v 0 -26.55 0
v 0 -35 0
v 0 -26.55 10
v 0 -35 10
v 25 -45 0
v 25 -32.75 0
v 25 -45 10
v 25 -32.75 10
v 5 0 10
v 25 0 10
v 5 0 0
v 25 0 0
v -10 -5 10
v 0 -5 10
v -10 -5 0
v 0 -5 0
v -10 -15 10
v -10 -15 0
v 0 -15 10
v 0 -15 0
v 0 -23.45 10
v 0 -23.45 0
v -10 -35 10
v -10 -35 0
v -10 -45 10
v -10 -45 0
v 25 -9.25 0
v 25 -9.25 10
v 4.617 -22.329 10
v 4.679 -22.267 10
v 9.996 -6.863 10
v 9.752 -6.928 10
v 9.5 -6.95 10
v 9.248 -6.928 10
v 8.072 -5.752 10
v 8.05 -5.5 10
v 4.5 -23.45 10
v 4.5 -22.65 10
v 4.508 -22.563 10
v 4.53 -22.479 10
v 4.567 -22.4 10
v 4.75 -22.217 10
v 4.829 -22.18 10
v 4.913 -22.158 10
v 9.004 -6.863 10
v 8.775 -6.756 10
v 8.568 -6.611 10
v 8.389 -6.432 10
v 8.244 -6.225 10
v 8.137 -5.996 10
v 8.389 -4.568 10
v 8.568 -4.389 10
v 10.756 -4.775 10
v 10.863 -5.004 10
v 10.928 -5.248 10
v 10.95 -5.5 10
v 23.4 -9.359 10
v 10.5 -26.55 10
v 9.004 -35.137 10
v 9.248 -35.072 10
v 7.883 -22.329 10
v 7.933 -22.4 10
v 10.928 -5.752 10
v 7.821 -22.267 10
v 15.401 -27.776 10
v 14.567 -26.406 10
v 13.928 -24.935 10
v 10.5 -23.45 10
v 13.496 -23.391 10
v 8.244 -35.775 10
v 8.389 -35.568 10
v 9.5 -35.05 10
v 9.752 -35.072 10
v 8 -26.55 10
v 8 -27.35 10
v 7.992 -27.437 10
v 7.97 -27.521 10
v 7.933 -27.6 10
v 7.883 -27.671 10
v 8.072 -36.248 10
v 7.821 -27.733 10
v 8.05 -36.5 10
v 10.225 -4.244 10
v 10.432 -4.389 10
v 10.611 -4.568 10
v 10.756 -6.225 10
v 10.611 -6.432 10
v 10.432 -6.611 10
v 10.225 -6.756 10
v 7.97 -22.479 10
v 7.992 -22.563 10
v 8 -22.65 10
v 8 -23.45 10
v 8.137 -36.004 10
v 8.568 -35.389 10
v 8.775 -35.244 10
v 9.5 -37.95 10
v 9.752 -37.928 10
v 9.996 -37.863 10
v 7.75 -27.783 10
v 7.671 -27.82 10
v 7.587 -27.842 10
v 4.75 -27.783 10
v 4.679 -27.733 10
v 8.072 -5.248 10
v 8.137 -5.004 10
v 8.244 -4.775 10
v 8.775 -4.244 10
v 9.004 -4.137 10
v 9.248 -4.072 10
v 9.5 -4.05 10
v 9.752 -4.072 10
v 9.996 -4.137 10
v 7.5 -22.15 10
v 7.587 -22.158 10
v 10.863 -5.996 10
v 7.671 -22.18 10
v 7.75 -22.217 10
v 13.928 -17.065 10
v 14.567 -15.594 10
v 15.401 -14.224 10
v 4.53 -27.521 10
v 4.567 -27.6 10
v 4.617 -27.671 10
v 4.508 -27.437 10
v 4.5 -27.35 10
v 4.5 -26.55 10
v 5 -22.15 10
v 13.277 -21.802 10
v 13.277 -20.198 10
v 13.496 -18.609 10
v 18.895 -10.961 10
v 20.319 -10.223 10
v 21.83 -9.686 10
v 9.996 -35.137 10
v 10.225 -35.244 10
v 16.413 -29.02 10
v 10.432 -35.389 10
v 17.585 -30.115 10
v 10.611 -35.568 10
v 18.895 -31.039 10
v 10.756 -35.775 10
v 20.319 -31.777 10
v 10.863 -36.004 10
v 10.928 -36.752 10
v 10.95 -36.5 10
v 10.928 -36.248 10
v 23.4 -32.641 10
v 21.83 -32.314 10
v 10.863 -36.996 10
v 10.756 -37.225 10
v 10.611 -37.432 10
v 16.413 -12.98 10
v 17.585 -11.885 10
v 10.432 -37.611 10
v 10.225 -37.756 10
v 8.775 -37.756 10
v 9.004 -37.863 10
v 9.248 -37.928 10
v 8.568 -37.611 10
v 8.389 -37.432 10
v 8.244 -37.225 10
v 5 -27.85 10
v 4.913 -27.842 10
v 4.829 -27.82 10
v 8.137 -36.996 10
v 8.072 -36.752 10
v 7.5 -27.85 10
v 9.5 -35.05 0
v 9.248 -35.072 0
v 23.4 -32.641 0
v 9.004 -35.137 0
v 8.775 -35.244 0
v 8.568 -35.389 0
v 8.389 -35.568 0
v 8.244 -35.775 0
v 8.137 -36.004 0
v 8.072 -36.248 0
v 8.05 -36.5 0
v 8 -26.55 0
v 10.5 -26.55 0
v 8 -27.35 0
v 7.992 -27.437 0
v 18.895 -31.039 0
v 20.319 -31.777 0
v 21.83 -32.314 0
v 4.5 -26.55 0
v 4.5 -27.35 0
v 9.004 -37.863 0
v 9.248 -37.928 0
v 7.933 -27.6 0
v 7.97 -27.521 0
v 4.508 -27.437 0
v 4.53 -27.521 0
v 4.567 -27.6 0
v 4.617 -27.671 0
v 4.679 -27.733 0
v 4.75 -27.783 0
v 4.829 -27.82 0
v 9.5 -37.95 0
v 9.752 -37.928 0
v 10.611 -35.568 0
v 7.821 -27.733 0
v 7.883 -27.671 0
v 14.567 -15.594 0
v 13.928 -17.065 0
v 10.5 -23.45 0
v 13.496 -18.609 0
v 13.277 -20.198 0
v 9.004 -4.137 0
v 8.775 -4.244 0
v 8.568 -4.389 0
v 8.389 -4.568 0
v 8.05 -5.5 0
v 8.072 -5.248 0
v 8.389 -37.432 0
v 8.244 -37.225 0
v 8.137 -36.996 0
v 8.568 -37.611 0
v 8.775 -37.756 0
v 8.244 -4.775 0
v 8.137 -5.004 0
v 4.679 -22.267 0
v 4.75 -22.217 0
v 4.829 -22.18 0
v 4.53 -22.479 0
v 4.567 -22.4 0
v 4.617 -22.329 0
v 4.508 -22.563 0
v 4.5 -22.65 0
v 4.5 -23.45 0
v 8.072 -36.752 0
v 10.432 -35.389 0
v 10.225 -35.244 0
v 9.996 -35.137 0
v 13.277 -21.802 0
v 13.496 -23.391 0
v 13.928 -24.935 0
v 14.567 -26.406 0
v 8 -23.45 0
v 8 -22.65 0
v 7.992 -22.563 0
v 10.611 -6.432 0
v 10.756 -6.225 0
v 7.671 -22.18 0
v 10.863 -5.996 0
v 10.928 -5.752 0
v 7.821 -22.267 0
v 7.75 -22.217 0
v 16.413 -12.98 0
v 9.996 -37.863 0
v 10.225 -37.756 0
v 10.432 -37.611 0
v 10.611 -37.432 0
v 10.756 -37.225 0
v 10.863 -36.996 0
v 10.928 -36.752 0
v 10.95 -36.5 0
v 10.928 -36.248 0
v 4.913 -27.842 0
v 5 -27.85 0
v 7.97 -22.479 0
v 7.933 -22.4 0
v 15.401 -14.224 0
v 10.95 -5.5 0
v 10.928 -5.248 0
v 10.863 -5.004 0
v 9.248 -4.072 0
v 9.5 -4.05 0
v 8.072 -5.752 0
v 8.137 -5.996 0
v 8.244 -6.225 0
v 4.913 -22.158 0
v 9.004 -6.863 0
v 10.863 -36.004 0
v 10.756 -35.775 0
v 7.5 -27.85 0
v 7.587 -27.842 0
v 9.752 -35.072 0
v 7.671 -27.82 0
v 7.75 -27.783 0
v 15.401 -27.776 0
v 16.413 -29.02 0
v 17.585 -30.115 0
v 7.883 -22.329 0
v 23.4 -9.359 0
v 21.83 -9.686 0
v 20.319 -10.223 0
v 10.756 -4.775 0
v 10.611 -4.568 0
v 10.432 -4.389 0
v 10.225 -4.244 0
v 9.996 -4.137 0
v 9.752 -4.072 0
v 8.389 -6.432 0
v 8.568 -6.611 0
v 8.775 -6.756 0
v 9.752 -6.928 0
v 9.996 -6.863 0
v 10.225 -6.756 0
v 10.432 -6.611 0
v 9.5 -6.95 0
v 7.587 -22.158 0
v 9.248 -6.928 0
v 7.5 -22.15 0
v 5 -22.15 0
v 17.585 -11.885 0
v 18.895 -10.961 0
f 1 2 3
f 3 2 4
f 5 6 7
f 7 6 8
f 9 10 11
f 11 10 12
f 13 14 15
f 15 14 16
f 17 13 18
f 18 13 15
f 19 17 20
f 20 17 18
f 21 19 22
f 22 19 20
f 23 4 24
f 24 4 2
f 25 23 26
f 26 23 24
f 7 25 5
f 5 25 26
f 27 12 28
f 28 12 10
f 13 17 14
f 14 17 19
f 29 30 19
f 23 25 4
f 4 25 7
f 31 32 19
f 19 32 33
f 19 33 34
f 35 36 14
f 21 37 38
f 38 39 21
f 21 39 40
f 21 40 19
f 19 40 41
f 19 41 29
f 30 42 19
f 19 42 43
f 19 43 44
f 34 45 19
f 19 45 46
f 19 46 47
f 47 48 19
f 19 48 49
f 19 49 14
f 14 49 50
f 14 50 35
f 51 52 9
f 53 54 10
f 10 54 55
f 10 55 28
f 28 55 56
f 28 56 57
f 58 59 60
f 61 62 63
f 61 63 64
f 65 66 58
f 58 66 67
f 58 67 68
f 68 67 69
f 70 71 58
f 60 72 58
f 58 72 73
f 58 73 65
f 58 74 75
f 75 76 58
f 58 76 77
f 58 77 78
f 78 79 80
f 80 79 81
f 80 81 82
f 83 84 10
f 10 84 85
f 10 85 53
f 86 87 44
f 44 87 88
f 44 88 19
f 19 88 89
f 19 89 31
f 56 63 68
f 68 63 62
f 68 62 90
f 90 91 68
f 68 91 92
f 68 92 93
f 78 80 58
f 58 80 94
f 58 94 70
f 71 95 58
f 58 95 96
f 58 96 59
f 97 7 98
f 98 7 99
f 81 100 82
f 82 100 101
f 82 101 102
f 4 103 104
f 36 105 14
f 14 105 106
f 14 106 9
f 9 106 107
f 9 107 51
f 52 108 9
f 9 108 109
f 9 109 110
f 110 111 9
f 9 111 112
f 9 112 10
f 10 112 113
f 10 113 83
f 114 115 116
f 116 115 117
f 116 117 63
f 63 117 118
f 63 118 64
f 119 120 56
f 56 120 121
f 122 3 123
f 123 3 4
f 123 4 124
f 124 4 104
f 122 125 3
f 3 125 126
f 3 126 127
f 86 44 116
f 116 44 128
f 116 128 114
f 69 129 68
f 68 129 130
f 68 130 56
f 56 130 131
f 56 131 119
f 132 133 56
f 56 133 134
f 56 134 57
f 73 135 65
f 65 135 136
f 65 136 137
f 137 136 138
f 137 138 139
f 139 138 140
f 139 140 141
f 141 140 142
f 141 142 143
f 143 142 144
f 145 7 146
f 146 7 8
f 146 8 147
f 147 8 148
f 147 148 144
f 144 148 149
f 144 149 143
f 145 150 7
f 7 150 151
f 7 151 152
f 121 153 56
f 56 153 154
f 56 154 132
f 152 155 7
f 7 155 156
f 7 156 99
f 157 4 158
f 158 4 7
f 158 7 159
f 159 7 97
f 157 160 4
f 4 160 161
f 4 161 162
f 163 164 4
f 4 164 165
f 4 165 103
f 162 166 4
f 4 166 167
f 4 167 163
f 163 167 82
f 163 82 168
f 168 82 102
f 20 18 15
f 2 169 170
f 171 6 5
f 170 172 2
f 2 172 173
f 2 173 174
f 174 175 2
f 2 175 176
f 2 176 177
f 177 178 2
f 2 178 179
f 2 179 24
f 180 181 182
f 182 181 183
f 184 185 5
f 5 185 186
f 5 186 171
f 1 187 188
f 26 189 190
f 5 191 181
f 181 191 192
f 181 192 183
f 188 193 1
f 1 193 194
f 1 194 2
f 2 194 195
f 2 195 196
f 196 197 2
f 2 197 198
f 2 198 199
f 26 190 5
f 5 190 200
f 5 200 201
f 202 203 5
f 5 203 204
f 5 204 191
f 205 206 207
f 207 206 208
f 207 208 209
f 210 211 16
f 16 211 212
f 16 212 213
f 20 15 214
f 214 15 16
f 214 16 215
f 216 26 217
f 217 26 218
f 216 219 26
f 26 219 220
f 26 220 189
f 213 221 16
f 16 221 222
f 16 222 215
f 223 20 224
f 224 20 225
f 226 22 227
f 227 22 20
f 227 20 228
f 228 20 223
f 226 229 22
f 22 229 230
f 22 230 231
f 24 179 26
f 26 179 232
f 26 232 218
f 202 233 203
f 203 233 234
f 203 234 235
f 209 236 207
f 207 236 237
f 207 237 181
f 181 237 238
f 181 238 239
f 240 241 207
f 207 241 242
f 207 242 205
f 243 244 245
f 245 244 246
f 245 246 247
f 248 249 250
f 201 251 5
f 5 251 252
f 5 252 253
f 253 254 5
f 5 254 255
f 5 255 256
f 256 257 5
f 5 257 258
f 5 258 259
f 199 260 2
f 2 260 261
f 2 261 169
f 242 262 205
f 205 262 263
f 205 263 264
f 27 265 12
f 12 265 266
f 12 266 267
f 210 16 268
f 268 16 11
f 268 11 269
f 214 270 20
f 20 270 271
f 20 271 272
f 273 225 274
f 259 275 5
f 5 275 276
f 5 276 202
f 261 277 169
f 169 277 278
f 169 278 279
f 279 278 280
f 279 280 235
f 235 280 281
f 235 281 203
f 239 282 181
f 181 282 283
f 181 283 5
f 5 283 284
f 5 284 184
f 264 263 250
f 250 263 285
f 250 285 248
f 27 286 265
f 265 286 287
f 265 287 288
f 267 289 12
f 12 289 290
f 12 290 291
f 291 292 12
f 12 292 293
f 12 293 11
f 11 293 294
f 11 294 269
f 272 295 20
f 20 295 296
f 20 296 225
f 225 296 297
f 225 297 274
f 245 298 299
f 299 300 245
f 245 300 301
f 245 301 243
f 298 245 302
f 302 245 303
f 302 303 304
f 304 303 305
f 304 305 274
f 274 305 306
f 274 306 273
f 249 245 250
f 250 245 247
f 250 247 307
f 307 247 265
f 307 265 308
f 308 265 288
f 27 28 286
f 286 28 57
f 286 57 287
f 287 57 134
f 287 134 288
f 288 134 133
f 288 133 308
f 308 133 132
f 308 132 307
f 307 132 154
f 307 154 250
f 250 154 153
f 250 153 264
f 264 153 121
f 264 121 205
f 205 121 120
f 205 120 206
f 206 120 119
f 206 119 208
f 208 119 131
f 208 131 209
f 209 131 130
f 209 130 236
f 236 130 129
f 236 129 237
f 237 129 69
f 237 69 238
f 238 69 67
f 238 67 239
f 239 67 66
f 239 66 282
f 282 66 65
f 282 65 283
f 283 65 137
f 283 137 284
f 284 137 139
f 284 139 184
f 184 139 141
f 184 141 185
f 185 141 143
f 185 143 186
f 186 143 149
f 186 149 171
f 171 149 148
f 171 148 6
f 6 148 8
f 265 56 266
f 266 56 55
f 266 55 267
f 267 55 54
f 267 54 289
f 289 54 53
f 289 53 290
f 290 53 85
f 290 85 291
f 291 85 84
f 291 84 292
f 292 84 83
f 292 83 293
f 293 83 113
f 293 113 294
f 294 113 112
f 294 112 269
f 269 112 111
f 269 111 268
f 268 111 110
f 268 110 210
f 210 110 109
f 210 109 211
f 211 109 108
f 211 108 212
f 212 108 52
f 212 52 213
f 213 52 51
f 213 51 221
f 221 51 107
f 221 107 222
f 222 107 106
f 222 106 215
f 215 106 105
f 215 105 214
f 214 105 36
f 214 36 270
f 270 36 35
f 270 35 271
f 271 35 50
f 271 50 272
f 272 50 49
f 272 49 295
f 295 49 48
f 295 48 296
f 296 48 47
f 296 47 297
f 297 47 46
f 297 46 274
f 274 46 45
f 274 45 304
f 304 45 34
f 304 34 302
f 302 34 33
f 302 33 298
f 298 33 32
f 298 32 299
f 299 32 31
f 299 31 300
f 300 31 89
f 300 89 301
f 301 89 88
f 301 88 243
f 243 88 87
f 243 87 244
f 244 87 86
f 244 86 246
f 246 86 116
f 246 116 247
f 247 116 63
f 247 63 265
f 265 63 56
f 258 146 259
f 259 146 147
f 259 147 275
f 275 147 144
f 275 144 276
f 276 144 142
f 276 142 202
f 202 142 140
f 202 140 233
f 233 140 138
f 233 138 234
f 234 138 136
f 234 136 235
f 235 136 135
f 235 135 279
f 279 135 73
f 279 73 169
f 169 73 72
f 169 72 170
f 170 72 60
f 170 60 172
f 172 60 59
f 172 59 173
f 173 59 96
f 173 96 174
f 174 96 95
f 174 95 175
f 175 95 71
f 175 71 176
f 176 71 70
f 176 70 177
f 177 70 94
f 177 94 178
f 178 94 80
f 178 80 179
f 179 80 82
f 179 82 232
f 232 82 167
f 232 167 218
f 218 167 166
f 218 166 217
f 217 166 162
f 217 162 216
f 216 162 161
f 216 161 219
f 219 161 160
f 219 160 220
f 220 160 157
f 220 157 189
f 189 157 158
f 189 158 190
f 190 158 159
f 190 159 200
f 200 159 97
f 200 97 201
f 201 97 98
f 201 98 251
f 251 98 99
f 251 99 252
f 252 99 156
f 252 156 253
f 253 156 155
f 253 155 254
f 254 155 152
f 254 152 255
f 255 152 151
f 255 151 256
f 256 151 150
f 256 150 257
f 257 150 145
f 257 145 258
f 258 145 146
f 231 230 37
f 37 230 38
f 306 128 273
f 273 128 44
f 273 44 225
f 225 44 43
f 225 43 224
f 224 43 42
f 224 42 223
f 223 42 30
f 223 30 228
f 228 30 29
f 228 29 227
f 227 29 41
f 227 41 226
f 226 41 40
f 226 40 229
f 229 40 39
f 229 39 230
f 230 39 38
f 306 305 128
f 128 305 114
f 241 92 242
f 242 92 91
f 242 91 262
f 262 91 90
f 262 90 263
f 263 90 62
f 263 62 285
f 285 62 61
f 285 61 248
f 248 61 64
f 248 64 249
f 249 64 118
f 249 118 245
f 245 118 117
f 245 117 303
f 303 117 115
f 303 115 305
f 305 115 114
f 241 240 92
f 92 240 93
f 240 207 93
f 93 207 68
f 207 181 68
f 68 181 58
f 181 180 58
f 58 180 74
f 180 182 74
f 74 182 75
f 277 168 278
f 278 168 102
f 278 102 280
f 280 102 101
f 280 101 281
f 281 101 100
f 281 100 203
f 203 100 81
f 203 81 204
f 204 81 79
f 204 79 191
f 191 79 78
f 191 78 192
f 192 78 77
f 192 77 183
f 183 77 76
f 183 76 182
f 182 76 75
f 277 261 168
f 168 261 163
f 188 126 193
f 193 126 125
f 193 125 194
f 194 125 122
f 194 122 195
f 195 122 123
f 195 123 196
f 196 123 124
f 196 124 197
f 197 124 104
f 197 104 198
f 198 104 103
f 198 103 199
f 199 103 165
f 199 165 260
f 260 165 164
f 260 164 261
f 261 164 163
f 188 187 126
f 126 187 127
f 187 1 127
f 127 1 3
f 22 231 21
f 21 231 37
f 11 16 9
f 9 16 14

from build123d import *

# Parameters (mm, degrees)
BOSS_EXTRUDE1_DEPTH = 10
SKETCH2_R           = 11.75
SKETCH2_R_2         = 1.45
MOTOR_DEPTH         = 57.789083458
SCREW_DEPTH         = 57.789083458
SKETCH4_W           = 25
SKETCH4_H           = 5
CUT_EXTRUDE3_DEPTH  = 57.789083458


with BuildPart() as part:
    # Sketch1 → Boss-Extrude1 (new body)
    with BuildSketch(Plane.XY):
        Polygon((0, 0), (0, -5), (-10, -5), (-10, -15), (0, -15), (0, -35), (-10, -35), (-10, -45), (0, -45), (0, -50), (25, -50), (25, 0), align=None)
    extrude(amount=BOSS_EXTRUDE1_DEPTH)

    # Sketch2 → motor (cut, through all)
    with BuildSketch(Plane.XY.offset(10)):
        with Locations((25, -21)):
            Circle(SKETCH2_R)
        with Locations((9.5, -5.5)):
            Circle(SKETCH2_R_2)
        with Locations(Location((9.5, -36.5, 0), (0, 0, 180))):
            Circle(SKETCH2_R_2)
    extrude(amount=-MOTOR_DEPTH, mode=Mode.SUBTRACT)

    # Sketch3 → screw (cut, through all)
    with BuildSketch(Plane.XY.offset(10)):
        with BuildLine():
            Line((0, -26.55), (0, -23.45))
            Line((0, -23.45), (4.5, -23.45))
            Line((4.5, -23.45), (4.5, -22.65))
            ThreePointArc((4.5, -22.65), (4.646446609, -22.296446609), (5, -22.15))
            Line((5, -22.15), (7.5, -22.15))
            ThreePointArc((7.5, -22.15), (7.853553391, -22.296446609), (8, -22.65))
            Line((8, -22.65), (8, -23.45))
            Line((8, -23.45), (10.5, -23.45))
            Line((10.5, -23.45), (10.5, -26.55))
            Line((10.5, -26.55), (8, -26.55))
            Line((8, -26.55), (8, -27.35))
            ThreePointArc((8, -27.35), (7.853553391, -27.703553391), (7.5, -27.85))
            Line((7.5, -27.85), (5, -27.85))
            ThreePointArc((5, -27.85), (4.646446609, -27.703553391), (4.5, -27.35))
            Line((4.5, -27.35), (4.5, -26.55))
            Line((4.5, -26.55), (0, -26.55))
        make_face()
    extrude(amount=-SCREW_DEPTH, mode=Mode.SUBTRACT)

    # Sketch4 → Cut-Extrude3 (cut, through all)
    with BuildSketch(Plane.XY.offset(10)):
        with Locations((12.5, -47.5)):
            Rectangle(SKETCH4_W, SKETCH4_H)
        Polygon((0, -5), (5, 0), (0, 0), align=None)
    extrude(amount=-CUT_EXTRUDE3_DEPTH, mode=Mode.SUBTRACT)


solid = part.part
